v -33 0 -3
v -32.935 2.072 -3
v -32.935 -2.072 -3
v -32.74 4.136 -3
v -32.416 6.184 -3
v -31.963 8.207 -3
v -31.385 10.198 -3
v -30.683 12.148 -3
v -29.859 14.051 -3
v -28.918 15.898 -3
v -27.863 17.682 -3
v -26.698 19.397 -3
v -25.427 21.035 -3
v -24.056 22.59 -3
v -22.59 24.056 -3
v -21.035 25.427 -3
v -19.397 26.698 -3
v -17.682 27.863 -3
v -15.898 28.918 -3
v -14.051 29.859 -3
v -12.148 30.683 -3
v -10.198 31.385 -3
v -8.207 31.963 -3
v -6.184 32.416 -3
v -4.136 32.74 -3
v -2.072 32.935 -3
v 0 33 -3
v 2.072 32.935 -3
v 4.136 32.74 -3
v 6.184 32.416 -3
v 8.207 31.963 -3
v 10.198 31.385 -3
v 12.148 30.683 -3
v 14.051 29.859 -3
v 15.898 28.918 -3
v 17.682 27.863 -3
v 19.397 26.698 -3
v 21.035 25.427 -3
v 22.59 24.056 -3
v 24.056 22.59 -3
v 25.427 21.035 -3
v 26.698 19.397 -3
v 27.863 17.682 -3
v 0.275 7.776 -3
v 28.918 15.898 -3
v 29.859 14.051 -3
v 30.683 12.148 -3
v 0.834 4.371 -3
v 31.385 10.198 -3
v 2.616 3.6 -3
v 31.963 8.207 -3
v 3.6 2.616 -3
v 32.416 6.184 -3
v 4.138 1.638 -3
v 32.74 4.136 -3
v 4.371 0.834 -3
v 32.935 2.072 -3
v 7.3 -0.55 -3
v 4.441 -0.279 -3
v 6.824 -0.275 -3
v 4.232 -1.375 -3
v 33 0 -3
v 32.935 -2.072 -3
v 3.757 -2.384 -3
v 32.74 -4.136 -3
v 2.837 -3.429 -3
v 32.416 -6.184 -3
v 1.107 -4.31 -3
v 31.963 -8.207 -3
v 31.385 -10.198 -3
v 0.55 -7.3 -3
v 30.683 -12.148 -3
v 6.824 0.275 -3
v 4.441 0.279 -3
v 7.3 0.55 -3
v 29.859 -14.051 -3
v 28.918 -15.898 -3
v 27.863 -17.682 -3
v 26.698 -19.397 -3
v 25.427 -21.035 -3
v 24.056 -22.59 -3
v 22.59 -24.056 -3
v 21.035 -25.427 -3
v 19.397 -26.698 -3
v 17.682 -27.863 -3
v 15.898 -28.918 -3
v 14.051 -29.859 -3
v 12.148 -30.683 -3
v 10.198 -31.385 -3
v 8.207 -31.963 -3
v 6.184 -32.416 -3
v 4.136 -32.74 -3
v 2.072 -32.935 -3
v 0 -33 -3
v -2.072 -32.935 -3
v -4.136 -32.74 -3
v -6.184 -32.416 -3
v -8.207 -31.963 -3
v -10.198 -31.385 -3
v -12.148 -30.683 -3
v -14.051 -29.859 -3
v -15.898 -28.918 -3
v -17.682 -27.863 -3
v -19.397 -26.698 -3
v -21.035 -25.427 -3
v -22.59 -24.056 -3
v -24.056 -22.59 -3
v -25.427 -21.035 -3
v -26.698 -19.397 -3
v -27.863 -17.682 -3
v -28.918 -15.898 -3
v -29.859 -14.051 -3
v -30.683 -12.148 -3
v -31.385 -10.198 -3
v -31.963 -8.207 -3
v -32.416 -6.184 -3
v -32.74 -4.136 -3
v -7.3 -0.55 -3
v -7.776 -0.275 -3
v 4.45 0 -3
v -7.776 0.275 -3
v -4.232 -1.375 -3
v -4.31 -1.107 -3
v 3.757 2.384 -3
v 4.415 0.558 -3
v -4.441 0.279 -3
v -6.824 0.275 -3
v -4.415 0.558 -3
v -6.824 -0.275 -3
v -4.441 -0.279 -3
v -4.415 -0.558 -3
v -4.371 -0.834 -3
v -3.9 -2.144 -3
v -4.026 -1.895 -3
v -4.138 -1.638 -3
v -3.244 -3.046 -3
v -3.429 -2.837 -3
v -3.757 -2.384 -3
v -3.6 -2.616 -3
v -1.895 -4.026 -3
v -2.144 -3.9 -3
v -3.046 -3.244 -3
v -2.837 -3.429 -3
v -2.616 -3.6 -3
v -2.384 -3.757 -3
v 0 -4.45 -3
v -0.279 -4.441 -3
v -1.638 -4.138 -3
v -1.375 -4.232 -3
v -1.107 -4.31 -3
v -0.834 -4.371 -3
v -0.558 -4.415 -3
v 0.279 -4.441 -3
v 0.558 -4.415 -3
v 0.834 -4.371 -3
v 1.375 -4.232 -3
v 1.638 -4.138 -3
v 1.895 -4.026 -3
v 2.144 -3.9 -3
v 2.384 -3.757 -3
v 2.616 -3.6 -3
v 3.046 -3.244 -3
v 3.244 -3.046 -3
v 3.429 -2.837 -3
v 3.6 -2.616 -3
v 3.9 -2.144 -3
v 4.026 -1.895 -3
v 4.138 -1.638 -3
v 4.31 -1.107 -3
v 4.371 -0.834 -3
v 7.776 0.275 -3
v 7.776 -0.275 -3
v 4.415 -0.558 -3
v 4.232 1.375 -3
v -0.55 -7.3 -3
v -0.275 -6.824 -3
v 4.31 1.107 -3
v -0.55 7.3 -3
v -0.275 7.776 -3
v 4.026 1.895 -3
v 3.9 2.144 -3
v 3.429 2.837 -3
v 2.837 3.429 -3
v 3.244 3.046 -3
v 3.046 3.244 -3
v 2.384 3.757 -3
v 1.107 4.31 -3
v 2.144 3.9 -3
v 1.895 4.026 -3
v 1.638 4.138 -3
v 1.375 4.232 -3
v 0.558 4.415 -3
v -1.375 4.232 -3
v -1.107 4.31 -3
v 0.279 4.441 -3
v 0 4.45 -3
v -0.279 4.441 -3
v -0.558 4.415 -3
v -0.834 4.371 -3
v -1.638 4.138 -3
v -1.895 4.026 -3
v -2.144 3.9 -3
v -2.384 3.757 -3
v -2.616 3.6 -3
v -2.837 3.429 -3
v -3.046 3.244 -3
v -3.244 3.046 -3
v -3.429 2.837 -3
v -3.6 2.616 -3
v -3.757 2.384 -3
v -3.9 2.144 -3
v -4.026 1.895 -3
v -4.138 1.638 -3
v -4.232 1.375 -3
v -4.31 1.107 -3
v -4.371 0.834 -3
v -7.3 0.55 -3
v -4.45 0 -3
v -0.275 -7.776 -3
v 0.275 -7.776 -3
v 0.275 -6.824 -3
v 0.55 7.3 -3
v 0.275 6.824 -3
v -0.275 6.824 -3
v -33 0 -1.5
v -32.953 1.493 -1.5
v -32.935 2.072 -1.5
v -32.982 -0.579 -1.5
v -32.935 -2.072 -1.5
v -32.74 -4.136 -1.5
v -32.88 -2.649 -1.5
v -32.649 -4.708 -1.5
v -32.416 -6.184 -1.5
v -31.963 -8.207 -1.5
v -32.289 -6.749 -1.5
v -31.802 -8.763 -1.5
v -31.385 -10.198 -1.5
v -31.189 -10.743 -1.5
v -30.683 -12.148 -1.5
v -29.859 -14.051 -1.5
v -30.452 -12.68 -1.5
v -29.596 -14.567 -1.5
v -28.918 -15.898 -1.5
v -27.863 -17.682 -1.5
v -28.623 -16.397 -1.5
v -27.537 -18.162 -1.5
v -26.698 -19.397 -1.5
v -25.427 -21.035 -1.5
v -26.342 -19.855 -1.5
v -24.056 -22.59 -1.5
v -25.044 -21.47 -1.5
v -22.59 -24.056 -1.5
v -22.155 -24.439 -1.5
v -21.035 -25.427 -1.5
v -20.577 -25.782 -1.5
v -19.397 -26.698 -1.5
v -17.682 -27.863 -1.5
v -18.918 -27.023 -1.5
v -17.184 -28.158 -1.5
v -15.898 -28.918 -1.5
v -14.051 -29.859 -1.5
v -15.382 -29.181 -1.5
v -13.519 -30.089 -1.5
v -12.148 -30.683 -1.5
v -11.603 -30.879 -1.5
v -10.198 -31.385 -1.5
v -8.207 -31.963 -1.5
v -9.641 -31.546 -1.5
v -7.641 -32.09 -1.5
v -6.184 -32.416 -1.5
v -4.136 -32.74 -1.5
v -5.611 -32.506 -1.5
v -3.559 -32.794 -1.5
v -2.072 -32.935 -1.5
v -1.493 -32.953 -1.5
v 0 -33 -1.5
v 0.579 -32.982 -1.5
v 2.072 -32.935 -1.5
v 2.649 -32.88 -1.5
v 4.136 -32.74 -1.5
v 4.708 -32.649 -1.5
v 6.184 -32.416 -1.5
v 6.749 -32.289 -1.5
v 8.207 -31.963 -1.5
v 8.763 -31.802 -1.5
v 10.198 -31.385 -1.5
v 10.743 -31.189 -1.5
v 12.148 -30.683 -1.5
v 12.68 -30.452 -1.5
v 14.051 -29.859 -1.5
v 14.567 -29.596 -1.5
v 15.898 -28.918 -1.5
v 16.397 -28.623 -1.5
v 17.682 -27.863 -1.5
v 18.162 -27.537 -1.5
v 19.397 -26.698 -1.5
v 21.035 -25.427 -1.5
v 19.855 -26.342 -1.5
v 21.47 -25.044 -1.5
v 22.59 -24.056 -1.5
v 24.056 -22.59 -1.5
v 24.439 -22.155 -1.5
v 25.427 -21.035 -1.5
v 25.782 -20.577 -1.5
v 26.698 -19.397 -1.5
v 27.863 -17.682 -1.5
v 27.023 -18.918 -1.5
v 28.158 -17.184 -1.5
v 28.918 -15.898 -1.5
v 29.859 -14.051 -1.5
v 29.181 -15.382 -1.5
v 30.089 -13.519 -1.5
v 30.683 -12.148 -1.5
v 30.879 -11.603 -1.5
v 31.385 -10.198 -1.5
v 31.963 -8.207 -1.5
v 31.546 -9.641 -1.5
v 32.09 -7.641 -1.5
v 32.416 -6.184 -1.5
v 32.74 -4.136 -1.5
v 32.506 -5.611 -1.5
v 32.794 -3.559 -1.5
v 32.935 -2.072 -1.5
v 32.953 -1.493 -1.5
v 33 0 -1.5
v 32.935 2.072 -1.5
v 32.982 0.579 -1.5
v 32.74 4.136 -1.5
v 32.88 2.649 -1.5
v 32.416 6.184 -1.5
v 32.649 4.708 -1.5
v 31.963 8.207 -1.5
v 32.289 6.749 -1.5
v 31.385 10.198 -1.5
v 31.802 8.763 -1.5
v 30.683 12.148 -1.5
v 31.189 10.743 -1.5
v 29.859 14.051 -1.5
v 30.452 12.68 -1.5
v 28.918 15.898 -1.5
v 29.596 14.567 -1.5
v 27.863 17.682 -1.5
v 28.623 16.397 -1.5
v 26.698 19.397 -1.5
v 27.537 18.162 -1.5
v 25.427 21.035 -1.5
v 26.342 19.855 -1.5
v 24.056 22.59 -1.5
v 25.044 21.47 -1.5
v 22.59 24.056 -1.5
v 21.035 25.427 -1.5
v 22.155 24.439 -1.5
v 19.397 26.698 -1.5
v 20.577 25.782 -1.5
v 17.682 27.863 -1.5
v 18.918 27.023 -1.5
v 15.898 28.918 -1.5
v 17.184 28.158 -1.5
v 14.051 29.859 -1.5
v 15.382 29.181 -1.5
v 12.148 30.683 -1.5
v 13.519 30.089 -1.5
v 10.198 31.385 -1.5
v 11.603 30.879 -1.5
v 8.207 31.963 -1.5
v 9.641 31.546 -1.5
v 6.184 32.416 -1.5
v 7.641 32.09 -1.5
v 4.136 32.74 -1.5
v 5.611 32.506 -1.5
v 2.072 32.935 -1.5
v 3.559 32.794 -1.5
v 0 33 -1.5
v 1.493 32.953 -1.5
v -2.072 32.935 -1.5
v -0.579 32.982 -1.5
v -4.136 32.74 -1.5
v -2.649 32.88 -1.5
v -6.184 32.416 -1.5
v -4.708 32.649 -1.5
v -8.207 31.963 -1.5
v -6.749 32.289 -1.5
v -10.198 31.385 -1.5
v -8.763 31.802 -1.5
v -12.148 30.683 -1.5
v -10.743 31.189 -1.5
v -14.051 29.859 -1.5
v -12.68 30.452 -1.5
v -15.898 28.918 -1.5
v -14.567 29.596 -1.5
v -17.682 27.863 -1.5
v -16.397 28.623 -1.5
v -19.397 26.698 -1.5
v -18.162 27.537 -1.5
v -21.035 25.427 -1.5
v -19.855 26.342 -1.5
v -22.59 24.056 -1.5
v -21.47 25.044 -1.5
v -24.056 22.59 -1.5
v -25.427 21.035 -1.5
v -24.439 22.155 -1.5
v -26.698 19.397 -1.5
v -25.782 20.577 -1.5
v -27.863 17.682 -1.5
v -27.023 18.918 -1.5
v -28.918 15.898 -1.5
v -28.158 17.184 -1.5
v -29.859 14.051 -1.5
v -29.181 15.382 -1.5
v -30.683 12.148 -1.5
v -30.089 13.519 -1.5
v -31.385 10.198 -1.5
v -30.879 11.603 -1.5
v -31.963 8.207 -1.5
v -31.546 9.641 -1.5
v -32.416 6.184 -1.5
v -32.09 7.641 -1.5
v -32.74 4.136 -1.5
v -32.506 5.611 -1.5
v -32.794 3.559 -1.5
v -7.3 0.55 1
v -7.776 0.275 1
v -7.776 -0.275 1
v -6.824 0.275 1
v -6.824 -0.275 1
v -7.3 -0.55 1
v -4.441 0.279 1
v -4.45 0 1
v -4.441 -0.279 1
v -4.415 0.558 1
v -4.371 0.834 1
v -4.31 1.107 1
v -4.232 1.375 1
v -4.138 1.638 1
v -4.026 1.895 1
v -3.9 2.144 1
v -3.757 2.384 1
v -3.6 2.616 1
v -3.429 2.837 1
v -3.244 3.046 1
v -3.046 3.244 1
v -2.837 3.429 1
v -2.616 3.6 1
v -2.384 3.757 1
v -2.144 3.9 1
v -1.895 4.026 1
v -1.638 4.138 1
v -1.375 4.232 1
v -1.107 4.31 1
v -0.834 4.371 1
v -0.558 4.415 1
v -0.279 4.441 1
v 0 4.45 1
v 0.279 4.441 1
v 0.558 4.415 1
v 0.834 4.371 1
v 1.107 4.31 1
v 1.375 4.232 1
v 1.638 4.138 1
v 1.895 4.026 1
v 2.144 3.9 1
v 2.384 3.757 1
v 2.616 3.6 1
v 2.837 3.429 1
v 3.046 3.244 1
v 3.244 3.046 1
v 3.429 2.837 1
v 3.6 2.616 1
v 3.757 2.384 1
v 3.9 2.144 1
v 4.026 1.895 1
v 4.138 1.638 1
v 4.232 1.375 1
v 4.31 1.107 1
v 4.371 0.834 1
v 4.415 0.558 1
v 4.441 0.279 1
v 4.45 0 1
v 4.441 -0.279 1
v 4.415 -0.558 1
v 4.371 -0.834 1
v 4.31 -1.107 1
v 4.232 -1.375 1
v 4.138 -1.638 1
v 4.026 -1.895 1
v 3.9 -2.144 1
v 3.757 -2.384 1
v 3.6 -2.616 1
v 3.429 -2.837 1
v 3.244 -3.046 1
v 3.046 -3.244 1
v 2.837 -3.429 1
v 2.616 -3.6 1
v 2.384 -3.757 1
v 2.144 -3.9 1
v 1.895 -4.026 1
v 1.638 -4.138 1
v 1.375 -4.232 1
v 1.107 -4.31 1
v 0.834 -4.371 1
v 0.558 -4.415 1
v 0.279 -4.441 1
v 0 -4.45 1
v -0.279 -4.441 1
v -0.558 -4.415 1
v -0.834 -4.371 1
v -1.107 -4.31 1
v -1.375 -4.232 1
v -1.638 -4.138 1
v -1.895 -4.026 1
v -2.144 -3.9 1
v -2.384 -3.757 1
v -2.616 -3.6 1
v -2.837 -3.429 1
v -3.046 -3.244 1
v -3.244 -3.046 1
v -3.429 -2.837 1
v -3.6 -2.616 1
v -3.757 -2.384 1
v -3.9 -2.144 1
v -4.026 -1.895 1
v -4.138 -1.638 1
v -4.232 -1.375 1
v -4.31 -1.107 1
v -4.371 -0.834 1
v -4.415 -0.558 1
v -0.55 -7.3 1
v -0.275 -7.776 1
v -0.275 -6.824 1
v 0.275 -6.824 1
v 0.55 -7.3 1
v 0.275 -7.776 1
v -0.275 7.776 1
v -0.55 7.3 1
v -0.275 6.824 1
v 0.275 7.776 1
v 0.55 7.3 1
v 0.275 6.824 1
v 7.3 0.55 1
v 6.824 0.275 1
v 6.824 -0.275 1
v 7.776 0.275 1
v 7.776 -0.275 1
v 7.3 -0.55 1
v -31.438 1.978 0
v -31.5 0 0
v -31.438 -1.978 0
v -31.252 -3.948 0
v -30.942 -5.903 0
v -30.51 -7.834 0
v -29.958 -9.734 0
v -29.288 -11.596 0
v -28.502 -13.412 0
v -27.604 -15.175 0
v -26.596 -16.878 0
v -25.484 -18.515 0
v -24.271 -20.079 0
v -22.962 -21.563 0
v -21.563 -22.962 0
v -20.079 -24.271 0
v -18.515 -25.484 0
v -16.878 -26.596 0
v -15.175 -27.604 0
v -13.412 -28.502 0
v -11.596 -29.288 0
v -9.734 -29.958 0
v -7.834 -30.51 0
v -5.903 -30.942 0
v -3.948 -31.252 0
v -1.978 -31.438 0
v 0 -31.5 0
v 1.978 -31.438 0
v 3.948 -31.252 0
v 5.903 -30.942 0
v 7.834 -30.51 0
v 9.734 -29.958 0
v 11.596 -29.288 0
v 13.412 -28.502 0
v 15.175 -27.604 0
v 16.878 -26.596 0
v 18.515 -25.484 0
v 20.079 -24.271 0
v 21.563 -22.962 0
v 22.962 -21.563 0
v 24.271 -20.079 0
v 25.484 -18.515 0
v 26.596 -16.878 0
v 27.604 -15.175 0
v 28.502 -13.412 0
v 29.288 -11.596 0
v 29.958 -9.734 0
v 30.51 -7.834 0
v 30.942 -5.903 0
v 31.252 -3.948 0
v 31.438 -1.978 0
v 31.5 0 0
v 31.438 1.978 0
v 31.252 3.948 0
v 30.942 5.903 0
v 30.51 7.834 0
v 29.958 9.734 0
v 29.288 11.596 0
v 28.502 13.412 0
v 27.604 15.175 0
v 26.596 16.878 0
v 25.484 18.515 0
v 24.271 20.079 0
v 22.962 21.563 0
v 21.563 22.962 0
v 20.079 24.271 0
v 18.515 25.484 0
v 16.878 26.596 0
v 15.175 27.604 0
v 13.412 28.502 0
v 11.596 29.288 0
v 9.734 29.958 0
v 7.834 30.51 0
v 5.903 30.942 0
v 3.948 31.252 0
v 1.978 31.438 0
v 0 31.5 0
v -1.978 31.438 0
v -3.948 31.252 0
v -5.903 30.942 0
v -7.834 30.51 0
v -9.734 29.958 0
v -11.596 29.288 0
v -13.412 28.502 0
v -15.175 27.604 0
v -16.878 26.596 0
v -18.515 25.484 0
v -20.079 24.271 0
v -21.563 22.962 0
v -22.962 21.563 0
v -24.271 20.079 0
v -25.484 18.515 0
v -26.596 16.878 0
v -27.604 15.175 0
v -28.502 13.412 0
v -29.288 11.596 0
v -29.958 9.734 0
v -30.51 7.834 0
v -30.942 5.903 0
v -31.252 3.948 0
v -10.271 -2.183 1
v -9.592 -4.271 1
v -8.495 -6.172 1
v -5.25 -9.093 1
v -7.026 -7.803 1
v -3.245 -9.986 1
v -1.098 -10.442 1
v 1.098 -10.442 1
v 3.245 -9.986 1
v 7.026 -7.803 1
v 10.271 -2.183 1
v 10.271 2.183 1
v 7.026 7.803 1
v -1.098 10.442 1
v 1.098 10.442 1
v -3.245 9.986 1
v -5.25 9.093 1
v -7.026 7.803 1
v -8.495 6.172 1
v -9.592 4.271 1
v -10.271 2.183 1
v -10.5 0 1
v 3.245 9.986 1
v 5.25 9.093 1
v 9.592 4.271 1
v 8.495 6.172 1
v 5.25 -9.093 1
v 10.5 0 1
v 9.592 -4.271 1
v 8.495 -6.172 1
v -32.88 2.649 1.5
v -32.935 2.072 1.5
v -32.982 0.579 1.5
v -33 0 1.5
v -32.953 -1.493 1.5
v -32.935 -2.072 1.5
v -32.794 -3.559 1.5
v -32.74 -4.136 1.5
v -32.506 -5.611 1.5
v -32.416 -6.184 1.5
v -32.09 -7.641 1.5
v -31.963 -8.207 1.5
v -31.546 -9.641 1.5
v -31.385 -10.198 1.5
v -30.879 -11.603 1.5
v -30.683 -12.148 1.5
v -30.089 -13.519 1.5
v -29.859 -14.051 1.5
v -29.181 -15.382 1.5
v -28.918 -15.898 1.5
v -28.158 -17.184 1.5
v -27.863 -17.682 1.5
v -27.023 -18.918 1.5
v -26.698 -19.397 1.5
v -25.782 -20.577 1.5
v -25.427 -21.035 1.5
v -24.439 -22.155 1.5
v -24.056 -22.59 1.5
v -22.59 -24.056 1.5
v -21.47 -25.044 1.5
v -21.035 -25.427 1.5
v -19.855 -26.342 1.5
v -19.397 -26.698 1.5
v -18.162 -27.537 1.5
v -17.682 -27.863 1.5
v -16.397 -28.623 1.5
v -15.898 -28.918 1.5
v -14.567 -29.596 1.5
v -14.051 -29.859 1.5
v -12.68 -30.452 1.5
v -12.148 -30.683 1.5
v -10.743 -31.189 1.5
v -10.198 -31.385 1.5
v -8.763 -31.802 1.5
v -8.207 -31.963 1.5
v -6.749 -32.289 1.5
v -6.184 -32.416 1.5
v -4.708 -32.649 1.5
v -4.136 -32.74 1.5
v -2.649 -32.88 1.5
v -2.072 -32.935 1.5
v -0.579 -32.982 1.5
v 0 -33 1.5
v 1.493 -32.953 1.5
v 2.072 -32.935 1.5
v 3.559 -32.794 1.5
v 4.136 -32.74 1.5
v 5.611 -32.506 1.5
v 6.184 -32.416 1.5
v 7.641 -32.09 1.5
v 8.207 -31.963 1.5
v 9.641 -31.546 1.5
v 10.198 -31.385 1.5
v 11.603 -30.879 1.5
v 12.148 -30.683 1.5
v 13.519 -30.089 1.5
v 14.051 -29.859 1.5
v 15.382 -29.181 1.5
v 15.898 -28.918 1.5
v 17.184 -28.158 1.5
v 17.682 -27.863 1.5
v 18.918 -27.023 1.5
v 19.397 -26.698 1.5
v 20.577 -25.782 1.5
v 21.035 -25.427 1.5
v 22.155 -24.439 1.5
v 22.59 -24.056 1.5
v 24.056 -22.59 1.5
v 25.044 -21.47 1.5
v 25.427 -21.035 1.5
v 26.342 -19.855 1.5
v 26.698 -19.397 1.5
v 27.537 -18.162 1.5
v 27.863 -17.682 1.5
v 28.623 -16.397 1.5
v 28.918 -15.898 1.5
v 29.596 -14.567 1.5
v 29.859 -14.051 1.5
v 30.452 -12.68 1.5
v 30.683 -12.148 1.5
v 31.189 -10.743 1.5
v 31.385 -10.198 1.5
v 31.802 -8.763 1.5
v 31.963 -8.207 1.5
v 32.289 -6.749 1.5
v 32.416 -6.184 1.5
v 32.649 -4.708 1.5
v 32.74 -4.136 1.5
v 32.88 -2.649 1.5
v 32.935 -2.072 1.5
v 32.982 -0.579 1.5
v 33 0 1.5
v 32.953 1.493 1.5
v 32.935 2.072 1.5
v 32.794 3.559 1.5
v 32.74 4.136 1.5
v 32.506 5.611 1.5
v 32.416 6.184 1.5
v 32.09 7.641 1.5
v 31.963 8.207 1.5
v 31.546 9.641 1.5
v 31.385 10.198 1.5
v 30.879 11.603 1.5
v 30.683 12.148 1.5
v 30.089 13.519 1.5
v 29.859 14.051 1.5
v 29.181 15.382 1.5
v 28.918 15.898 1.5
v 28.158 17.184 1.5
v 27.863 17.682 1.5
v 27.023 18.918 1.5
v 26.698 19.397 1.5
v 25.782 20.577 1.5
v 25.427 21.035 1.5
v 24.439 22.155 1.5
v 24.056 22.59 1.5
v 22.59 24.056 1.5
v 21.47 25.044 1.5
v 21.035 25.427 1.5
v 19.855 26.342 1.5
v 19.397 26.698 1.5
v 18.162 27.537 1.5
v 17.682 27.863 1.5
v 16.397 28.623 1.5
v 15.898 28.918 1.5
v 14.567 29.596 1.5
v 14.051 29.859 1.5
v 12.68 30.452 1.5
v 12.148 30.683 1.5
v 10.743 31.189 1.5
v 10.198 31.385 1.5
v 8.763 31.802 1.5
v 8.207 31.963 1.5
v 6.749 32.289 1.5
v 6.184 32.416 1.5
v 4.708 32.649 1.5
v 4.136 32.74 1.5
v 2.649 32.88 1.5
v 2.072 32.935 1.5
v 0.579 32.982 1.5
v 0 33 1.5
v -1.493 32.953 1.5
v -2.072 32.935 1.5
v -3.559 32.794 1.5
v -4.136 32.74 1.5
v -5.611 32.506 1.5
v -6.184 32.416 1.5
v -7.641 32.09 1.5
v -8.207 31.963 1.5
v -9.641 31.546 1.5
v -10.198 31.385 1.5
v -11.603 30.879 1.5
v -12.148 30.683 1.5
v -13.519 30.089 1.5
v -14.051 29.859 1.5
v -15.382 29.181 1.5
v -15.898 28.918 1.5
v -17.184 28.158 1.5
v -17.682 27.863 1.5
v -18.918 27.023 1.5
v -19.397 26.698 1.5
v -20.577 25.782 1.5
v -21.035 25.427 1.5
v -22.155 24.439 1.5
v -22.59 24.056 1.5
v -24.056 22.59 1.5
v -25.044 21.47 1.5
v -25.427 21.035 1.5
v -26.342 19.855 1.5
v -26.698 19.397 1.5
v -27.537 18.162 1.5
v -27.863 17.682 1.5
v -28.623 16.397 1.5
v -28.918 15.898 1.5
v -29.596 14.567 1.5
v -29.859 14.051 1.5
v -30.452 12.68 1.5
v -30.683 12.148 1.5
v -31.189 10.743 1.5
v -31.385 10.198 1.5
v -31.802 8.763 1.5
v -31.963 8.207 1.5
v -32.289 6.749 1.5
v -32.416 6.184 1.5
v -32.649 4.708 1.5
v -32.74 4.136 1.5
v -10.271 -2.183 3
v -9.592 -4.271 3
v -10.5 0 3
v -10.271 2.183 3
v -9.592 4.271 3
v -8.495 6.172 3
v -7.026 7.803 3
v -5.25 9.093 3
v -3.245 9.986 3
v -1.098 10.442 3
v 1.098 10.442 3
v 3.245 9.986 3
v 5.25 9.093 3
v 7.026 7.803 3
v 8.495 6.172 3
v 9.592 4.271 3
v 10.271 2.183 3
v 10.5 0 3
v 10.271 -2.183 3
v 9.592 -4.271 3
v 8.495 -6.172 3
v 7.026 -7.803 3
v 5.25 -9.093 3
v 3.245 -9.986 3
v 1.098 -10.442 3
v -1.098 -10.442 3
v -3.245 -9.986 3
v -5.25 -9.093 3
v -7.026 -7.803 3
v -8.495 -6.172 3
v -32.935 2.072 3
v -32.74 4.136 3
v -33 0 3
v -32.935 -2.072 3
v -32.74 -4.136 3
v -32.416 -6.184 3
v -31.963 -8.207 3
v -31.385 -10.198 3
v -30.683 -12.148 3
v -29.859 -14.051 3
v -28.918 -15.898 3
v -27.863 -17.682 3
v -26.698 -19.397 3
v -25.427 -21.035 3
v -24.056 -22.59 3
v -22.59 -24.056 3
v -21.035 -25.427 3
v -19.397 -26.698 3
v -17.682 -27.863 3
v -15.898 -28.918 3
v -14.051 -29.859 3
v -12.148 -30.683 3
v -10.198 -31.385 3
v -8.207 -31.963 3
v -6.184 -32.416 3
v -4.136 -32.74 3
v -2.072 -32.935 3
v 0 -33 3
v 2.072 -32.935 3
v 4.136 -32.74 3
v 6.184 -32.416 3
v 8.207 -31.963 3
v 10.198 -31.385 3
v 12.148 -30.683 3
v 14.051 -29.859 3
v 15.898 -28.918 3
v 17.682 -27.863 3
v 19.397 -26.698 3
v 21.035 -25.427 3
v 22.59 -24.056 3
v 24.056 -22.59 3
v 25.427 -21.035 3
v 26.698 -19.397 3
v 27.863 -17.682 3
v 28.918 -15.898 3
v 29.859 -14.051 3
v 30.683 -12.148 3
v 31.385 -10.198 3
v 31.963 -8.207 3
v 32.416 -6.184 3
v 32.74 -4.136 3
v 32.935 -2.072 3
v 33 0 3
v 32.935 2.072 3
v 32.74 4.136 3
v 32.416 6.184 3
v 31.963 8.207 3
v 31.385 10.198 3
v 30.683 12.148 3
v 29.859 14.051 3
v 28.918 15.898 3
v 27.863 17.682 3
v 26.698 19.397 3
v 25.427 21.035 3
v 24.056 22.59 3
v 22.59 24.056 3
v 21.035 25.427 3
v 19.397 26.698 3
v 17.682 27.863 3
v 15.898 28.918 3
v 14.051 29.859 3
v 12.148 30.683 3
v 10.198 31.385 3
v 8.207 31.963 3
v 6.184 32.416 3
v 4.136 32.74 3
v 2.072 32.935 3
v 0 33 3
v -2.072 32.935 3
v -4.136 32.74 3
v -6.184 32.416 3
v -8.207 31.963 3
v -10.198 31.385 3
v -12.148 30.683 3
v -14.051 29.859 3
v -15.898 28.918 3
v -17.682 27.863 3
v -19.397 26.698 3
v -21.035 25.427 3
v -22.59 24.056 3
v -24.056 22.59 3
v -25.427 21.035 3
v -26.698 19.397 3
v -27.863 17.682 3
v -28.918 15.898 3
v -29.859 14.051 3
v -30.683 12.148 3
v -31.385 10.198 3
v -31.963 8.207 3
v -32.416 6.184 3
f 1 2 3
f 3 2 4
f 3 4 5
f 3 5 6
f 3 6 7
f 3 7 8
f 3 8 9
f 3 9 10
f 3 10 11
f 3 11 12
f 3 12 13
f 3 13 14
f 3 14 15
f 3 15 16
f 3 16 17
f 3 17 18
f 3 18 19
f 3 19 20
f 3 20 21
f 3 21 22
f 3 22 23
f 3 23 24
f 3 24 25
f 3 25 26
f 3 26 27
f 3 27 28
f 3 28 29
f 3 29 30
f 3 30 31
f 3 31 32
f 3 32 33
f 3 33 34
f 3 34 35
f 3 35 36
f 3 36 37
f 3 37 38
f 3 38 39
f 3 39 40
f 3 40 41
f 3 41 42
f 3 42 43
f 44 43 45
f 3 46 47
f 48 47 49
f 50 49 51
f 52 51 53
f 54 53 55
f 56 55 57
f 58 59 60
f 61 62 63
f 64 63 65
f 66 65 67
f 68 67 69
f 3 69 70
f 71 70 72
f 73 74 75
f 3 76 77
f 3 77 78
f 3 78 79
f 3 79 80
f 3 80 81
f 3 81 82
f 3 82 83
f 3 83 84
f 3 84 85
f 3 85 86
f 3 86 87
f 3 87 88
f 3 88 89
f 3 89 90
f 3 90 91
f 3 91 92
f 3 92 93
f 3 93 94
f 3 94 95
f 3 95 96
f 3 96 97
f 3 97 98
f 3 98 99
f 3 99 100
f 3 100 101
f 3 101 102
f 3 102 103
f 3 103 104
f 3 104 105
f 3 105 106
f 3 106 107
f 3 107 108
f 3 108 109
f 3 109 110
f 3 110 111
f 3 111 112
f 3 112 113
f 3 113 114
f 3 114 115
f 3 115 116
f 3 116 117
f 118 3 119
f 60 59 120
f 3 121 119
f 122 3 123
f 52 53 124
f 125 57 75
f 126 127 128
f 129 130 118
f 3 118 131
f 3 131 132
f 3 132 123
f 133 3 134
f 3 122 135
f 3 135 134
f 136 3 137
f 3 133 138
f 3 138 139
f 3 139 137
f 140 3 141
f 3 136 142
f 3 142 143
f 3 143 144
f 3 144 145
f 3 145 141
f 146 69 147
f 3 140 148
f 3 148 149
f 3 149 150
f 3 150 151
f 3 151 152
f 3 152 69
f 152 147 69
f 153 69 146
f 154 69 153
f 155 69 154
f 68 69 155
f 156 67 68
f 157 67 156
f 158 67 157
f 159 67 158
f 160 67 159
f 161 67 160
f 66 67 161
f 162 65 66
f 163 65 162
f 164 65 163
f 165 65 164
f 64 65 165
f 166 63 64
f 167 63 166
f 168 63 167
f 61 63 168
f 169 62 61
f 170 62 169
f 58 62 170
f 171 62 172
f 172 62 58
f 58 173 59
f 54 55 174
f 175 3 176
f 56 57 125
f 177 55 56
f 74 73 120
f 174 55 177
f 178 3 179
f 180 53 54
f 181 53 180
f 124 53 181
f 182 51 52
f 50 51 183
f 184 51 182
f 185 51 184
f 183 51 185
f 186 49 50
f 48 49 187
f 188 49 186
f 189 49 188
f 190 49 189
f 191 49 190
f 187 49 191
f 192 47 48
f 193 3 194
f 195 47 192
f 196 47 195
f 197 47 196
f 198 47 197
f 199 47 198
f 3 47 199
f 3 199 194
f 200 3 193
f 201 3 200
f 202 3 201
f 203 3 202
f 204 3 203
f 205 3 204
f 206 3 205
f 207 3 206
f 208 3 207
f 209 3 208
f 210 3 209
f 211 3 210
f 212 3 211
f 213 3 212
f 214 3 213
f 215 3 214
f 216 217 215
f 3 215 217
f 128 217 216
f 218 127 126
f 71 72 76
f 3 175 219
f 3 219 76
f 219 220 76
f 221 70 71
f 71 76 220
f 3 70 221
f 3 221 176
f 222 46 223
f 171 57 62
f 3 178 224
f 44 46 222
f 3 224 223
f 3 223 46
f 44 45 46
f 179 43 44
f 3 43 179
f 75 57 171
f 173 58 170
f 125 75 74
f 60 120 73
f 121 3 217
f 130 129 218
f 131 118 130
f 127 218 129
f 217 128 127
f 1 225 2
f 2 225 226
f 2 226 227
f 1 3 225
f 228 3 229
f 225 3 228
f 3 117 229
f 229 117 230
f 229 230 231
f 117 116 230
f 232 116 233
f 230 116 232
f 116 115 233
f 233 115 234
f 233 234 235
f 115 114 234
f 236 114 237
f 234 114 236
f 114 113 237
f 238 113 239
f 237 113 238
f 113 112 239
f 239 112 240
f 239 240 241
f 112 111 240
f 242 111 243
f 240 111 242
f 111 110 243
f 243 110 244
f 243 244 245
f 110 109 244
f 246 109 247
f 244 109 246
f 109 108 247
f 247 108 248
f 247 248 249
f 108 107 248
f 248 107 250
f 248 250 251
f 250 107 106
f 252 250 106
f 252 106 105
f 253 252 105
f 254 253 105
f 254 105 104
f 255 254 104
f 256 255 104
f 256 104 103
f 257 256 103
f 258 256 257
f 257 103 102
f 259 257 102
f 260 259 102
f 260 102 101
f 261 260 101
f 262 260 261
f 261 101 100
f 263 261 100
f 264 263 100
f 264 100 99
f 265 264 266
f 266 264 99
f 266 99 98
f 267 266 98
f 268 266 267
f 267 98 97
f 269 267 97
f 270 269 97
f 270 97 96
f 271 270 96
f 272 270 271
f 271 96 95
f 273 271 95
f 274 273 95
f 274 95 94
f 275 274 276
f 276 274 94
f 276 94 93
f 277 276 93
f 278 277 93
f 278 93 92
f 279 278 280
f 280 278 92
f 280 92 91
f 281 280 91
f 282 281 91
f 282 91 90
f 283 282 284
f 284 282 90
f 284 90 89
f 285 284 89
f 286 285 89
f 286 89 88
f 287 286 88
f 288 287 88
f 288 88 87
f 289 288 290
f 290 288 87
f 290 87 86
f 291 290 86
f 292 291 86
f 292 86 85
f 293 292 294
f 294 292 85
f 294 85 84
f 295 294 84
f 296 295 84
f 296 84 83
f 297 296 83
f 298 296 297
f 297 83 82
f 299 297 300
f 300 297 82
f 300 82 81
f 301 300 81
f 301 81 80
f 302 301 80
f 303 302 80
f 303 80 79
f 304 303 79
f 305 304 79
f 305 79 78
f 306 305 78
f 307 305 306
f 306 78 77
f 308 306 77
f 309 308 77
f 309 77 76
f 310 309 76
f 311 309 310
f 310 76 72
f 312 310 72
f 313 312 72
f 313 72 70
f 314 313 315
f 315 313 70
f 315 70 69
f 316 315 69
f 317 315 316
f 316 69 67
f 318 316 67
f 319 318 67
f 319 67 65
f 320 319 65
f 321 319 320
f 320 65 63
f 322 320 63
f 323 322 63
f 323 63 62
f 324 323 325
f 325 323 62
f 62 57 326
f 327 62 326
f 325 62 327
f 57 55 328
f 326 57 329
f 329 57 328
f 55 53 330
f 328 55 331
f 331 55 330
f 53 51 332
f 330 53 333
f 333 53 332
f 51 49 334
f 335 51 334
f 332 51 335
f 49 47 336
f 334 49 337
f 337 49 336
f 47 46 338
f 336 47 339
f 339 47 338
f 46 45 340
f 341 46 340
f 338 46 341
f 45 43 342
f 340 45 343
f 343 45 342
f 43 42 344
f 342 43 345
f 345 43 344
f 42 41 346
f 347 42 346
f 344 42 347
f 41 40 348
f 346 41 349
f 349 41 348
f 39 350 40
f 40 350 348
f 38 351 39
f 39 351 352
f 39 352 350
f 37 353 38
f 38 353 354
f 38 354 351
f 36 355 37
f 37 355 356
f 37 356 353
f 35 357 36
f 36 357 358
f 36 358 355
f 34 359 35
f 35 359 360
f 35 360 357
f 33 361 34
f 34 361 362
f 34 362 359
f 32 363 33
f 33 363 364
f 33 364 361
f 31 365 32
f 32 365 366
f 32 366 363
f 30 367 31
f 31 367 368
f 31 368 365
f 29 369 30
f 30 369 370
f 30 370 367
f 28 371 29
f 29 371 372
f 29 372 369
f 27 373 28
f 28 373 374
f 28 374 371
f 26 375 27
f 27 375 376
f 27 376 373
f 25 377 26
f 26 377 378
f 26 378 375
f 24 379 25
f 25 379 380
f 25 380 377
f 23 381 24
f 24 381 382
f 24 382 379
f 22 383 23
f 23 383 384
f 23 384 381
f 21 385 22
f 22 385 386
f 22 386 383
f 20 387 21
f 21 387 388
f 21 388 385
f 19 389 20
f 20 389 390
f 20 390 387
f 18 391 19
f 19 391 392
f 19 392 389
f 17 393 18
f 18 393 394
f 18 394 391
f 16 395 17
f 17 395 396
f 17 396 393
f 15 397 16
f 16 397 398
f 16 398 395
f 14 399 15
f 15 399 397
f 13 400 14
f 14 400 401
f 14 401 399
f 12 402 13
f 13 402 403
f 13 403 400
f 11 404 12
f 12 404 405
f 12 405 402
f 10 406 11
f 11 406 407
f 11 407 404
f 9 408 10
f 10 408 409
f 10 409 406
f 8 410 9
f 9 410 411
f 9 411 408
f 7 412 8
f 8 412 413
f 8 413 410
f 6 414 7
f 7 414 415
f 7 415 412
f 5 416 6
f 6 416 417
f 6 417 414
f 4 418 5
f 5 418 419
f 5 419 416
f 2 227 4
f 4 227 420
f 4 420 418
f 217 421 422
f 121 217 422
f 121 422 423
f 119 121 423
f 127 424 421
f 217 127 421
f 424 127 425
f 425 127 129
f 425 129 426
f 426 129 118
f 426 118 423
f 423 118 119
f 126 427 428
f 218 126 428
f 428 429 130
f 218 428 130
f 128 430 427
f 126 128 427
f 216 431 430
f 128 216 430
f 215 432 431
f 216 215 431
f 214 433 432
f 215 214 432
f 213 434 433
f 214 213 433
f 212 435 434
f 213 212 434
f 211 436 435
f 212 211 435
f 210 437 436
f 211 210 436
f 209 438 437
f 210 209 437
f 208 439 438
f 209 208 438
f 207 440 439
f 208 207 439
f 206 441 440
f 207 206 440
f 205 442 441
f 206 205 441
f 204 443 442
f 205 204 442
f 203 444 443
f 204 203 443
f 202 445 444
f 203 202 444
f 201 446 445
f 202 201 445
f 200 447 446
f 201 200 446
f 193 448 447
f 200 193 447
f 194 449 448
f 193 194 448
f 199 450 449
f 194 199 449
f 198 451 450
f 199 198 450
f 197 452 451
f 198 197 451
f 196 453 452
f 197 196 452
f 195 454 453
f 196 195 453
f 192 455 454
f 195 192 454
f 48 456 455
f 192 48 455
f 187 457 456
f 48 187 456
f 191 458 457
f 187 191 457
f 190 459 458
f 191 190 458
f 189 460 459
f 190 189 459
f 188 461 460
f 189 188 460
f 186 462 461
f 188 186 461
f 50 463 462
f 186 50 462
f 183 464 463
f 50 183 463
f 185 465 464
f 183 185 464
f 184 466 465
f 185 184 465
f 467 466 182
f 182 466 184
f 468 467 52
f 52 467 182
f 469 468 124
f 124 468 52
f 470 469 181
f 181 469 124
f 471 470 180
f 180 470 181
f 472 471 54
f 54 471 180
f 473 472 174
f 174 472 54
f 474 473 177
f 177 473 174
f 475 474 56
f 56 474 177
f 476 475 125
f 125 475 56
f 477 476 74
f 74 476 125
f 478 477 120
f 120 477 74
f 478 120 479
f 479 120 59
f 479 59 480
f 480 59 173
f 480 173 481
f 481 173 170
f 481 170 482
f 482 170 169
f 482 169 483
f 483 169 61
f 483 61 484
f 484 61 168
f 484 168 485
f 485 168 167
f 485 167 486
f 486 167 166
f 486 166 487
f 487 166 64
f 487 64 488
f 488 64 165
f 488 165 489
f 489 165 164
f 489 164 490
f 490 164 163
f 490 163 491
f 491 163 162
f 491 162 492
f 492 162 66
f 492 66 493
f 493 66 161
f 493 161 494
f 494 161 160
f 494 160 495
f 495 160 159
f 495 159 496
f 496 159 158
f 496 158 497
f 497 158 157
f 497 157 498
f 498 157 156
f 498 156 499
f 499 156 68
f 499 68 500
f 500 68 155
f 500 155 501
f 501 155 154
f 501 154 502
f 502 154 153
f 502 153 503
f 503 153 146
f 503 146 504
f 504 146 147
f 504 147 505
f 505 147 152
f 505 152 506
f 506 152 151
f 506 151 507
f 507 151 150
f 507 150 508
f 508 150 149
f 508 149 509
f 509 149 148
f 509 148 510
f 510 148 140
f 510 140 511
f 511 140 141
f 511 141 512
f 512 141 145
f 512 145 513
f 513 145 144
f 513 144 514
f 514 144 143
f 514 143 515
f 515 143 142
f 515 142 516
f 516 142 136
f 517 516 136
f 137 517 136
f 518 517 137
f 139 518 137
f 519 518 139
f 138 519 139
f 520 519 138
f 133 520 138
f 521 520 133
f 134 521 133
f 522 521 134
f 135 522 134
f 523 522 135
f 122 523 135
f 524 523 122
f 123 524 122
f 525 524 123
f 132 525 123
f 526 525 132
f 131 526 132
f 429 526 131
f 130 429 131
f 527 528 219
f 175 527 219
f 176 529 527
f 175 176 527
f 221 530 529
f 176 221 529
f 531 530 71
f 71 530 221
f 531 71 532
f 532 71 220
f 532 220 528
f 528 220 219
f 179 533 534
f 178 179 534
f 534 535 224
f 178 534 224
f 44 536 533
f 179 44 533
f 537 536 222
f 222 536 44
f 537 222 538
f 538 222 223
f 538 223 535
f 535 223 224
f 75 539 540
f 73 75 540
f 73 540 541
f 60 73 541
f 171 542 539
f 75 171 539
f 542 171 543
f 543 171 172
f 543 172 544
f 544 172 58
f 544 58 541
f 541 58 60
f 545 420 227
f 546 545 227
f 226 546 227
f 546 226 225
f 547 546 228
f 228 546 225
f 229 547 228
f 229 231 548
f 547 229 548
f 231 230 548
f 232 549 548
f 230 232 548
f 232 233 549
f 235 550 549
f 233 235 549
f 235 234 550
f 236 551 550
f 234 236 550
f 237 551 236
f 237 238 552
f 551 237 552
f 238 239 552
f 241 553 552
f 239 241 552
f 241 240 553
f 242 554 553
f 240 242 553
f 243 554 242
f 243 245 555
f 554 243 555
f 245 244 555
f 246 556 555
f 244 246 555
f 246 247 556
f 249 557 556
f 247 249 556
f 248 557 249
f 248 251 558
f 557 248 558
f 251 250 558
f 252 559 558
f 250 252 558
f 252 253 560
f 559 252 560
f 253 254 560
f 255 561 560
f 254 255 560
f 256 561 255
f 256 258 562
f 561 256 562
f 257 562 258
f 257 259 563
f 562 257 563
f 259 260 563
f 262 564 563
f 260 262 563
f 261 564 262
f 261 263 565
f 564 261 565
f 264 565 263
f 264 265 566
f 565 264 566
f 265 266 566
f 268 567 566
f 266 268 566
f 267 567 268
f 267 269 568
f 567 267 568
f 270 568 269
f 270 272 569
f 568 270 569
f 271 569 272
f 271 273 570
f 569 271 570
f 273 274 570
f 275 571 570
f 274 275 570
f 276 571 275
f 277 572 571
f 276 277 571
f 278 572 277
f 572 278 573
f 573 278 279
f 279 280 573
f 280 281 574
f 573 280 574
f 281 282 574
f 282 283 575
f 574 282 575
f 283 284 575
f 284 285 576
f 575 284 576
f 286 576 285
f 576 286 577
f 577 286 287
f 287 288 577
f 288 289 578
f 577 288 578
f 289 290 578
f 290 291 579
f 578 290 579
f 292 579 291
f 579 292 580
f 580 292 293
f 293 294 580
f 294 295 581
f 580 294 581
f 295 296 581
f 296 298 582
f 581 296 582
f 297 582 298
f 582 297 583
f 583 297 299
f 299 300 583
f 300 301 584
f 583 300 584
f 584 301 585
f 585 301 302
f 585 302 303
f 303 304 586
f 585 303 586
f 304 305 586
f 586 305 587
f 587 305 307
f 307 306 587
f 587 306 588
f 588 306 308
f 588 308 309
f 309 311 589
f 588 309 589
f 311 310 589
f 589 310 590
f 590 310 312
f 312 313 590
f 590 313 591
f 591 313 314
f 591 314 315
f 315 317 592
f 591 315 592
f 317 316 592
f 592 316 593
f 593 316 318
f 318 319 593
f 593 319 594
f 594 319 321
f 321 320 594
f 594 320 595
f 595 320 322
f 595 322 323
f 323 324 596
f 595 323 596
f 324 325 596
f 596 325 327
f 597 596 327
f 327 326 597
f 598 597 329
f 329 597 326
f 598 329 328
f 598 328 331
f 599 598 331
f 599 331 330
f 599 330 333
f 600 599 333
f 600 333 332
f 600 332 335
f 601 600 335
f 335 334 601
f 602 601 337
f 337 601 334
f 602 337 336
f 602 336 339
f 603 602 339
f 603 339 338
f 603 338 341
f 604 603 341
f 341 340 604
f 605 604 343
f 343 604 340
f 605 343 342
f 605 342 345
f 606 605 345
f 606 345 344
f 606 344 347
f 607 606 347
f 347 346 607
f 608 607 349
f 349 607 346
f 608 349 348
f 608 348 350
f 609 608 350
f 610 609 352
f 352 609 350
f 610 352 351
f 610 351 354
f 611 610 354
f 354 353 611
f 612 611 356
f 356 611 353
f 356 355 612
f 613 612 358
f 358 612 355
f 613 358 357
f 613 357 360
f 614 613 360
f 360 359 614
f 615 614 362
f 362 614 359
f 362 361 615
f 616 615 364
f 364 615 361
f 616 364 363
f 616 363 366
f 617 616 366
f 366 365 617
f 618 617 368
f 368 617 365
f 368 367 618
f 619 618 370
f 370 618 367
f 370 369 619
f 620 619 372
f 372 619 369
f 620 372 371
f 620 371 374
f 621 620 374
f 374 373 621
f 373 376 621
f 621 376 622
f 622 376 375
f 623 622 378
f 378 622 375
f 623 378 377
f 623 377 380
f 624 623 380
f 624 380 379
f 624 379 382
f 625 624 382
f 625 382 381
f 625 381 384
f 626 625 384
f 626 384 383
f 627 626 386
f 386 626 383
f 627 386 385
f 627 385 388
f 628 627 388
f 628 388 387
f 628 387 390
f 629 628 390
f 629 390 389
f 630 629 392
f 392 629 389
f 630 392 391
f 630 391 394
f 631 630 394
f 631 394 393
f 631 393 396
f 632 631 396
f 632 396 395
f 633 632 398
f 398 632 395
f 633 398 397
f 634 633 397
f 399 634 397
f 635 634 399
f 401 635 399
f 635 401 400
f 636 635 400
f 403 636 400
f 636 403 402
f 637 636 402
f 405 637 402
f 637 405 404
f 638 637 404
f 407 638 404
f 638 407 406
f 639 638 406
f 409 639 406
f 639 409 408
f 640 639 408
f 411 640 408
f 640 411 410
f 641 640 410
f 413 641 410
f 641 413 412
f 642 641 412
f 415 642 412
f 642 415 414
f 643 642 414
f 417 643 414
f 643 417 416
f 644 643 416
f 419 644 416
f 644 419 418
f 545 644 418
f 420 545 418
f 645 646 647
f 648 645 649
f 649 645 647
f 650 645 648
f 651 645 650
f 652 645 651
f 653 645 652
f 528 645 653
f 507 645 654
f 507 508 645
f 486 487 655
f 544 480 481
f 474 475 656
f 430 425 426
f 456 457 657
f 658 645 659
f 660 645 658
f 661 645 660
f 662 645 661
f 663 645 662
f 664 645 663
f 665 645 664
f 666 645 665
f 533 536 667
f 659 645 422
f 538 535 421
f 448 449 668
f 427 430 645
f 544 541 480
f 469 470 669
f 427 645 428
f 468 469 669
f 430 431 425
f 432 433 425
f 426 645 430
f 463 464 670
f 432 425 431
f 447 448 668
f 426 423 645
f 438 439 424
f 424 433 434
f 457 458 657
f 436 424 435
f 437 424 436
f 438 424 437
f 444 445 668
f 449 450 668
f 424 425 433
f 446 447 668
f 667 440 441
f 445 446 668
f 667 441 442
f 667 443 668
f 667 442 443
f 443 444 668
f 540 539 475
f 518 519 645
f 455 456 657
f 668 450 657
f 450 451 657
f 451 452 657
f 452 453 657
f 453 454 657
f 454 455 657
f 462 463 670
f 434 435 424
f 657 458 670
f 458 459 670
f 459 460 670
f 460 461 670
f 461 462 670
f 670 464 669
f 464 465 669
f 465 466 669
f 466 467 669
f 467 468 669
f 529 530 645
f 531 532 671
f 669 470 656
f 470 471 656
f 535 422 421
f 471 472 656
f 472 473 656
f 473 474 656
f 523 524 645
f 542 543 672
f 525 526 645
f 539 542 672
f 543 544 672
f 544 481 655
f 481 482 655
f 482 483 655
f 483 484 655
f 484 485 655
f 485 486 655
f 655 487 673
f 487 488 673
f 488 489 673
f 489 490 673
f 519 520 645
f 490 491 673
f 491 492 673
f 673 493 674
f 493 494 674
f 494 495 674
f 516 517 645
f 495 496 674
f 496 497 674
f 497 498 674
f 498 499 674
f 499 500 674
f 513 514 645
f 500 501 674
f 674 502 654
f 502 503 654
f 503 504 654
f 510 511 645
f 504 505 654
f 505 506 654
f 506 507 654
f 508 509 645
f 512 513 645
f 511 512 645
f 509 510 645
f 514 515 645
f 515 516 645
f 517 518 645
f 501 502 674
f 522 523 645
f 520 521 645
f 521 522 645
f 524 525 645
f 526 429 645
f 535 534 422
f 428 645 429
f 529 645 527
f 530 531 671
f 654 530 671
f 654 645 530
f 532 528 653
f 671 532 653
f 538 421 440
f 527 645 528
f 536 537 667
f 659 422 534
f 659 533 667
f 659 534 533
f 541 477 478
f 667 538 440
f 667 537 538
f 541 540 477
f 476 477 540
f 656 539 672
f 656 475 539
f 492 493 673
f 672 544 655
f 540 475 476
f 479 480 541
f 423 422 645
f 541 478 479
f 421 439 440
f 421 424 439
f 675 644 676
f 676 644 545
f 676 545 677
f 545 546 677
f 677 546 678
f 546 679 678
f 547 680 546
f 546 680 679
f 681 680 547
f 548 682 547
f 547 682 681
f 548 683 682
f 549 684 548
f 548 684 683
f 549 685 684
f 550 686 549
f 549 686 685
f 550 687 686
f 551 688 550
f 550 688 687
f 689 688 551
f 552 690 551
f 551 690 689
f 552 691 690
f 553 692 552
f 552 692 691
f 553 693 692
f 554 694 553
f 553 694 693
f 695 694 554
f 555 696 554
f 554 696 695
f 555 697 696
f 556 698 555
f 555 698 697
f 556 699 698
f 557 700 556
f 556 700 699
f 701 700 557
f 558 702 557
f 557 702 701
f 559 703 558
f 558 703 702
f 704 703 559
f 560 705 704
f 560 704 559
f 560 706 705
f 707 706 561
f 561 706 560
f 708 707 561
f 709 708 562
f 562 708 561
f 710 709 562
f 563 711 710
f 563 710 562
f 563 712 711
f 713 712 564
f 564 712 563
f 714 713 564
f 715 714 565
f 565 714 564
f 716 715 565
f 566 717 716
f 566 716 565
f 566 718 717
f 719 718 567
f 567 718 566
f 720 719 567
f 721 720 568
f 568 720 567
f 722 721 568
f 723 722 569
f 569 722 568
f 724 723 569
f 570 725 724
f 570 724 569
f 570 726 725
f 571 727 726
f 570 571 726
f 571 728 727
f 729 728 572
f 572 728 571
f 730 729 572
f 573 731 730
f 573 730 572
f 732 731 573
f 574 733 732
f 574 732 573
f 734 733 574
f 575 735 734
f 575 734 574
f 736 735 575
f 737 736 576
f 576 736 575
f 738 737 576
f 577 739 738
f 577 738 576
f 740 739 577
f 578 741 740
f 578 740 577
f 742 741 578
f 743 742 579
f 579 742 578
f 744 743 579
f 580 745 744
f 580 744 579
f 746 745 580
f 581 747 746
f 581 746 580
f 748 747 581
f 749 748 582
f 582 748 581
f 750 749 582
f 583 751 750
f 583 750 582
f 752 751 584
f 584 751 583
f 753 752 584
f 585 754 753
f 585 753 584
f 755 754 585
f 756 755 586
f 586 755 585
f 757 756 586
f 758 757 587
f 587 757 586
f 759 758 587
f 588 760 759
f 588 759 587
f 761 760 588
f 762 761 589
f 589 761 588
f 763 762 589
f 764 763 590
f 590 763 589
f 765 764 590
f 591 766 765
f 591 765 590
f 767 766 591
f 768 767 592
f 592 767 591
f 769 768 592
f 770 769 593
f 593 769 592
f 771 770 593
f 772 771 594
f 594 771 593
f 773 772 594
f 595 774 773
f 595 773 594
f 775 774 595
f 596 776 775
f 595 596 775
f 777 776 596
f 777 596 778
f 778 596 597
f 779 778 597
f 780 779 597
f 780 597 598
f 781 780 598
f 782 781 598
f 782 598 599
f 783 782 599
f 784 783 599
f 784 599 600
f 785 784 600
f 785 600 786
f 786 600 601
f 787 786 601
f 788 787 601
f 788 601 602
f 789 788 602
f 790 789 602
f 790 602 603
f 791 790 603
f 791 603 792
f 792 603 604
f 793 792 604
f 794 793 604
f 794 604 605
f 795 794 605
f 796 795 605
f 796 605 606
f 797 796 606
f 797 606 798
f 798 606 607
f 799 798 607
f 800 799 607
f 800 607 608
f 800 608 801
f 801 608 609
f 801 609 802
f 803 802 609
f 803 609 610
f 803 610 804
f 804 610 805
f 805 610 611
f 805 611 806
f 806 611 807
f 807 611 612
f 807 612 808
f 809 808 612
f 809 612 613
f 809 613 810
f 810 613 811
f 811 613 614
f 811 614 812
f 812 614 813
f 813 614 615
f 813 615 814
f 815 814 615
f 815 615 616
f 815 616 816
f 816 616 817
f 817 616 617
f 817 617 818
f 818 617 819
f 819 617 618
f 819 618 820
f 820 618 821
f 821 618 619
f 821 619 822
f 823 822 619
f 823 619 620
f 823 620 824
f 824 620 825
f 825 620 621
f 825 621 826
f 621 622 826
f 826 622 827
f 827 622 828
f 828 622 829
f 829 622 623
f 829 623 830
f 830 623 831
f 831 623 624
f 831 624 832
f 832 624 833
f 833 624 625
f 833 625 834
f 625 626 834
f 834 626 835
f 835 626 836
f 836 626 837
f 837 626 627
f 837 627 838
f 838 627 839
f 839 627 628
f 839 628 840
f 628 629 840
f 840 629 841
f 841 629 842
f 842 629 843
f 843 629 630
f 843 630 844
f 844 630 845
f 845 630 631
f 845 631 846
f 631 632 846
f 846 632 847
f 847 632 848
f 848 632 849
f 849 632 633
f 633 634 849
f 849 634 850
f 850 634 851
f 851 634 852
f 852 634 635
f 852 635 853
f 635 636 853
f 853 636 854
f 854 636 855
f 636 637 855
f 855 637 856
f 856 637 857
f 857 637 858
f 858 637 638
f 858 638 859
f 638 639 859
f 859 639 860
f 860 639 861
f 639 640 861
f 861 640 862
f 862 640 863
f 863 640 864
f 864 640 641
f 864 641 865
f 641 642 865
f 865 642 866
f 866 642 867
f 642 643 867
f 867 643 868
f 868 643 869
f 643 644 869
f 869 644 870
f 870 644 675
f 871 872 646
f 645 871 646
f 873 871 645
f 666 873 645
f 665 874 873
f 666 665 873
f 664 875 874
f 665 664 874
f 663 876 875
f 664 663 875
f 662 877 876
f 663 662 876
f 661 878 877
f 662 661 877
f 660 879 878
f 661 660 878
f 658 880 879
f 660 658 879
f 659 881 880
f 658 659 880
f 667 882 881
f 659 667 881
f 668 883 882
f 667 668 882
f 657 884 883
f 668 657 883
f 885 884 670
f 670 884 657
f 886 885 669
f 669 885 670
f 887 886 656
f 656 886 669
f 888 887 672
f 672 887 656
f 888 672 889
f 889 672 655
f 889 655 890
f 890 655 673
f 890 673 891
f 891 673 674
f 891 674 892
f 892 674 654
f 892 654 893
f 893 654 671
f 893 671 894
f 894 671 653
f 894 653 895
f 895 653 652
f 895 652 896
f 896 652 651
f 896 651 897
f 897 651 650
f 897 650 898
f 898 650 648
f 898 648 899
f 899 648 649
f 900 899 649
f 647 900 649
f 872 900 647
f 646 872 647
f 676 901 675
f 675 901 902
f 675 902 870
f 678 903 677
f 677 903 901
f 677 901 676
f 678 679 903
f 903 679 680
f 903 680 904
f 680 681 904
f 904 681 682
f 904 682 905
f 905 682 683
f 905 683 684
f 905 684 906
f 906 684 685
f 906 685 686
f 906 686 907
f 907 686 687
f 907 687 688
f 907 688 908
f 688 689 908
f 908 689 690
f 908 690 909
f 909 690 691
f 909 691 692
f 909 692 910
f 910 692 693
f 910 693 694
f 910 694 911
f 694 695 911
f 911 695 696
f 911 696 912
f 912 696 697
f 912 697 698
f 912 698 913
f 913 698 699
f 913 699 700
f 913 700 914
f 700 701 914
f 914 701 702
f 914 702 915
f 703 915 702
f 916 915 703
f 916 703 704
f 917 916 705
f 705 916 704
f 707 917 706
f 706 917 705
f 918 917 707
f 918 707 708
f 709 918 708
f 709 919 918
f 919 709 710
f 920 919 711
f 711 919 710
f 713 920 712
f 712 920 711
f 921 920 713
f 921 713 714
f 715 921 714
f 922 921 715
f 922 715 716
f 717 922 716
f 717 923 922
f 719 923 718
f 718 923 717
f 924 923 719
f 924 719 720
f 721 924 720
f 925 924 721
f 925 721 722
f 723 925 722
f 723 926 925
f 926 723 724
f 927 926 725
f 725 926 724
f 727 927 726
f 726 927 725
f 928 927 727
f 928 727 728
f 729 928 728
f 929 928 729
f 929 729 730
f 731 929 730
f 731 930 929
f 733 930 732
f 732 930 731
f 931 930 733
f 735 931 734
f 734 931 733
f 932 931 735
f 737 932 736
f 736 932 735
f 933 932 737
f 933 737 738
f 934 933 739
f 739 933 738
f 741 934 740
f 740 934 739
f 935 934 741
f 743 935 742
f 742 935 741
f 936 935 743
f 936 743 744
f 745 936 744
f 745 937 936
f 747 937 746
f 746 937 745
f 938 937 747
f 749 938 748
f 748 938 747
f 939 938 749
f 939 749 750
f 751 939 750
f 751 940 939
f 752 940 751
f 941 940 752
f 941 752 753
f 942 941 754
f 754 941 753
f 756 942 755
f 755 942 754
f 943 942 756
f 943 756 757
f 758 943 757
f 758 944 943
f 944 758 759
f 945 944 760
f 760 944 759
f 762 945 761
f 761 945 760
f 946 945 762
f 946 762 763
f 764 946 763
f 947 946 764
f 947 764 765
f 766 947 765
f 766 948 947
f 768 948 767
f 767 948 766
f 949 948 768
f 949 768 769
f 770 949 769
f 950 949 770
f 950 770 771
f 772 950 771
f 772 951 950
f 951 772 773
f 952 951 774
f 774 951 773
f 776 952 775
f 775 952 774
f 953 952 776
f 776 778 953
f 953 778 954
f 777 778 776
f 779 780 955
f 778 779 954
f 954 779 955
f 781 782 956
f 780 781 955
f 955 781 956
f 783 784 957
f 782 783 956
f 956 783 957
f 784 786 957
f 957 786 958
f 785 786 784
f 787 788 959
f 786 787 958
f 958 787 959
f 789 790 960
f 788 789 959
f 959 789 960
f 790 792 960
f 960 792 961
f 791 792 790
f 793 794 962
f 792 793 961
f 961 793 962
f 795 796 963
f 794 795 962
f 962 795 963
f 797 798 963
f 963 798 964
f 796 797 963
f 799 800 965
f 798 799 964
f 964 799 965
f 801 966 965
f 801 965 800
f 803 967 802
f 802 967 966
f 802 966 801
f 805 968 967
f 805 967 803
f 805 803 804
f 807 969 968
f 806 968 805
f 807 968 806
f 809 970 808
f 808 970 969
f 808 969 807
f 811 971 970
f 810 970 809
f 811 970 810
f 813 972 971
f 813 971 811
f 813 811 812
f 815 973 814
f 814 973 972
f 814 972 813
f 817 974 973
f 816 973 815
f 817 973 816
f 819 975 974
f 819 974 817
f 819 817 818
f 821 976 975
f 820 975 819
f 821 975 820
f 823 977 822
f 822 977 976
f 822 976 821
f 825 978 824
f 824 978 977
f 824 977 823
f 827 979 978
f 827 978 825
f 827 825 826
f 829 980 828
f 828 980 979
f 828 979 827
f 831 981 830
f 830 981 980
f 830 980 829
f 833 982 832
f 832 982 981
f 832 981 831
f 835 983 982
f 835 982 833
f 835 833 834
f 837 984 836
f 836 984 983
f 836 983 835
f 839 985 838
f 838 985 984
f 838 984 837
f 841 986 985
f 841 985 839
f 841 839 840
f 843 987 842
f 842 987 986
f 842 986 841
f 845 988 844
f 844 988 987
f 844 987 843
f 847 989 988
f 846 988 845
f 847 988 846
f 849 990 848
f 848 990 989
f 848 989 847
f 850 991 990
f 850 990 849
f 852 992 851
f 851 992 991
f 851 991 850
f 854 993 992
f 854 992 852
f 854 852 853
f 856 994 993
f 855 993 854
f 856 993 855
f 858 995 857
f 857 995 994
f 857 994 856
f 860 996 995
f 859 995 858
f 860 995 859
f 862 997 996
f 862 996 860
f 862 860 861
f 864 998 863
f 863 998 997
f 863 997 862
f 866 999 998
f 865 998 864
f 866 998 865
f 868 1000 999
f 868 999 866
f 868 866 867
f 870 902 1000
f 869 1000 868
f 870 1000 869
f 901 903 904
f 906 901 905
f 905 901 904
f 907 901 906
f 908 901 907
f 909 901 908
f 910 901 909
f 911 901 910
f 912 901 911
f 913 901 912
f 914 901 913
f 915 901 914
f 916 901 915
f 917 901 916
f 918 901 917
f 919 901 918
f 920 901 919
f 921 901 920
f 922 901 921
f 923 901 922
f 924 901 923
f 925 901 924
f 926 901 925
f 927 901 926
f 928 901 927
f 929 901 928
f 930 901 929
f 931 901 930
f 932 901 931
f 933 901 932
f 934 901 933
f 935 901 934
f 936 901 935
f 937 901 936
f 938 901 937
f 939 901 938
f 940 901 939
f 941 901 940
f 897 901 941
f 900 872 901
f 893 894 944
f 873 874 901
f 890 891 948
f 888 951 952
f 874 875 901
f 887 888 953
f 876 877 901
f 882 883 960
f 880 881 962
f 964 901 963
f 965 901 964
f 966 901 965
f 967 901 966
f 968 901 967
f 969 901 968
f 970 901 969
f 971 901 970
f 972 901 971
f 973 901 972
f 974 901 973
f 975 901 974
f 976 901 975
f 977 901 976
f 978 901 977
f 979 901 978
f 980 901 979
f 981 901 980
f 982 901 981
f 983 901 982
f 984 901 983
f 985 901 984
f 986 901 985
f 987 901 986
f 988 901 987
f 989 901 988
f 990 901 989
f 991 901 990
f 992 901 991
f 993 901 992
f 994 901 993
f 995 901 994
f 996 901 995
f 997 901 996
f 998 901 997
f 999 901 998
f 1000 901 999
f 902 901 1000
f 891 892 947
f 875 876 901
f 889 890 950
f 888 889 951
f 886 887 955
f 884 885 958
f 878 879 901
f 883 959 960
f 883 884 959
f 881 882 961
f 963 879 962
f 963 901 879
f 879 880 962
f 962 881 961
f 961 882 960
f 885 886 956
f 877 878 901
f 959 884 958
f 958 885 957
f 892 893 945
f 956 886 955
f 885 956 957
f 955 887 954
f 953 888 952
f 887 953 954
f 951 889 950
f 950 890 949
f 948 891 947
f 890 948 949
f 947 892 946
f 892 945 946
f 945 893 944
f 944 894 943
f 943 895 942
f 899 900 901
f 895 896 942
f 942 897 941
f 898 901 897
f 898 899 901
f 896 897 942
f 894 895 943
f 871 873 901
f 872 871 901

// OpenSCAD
//-------------------------------------------------------------
//-- Servo wheel
//-- (c) Juan Gonzalez (obijuan) juan@iearobotics.com
//-- March-2012
//-------------------------------------------------------------
//-- Wheel for mobile robots, drived by Futaba 3003 servos
//-------------------------------------------------------------

//-- Wheel parameters
wheel_or_idiam = 60;                   //-- O-ring inner diameter
wheel_or_diam = 3;                     //-- O-ring section diameter
wheel_height = 2*wheel_or_diam+0;     //-- Wheel height: change the 0 for 
                                      //-- other value (0 equals minimun height)
//-- Parameters common to all horns
horn_drill_diam = 1.1;
horn_height = 6;        //-- Total height: shaft + plate
horn_plate_height = 2;  //-- plate height

//-- Futaba 3003 servo rounded horn parameters
rh_diam1 = 8.5;  //-- Rounded horn small diameter
rh_diam2 = 20.5; //-- Rounded horn big diameter
rounded_horn_drill_distance = 7.3;

//-- Futaba 3003 horn drills


//-- Futaba 3003 4-arm horn parameters
a4h_end_diam = 5;
a4h_center_diam = 10;
a4h_arm_length = 15;
a4h_drill_distance = 13.3;


//-- Futaba 3003 6-arm horn parameters
a6h_end_diam = 5;
a6h_center_diam = 10;
a6h_arm_length=10;
a6h_arm_base_diam=7.5;
a6h_drill_distance = 10.9;


//-------------------------------------------------------
//--- Parameters:
//-- or_idiam: O-ring inner diameter
//-- or_diam: O-ring section diameter
//-- h: Height of the wheel
//--
//--  Module for generating a raw wheel, with no drills
//--  and no servo horn
//-------------------------------------------------------
module raw_wheel(or_idiam=50, or_diam=3, h=6)
{
   //-- Wheel parameters
   r = or_idiam/2 + or_diam;   //-- Radius

  //-- Temporal points
  l = or_diam*sqrt(2)/2;

  difference() {
    //-- Body of the wheel
    cylinder (r=r, h=h, $fn=100,center=true);

    //--  wheel's inner section
    rotate_extrude($fn=100)
      translate([r-or_diam/2,0,0])
      polygon( [ [0,0],[l,l],[l,-l] ] , [ [0,1,2] ]);
  }
}

//--------------------------------------------------------------
//-- Generic module for the horn's drills
//-- Parameters:
//--  d = drill's radial distance (from the horn's center)
//--  n = number of drills
//--  h = wheel height
//--------------------------------------------------------------
module horn_drills(d,n,h)
{
  union() {
    for ( i = [0 : n-1] ) {
        rotate([0,0,i*360/n])
        translate([0,d,0])
        cylinder(r=horn_drill_diam/2, h=h+10,center=true, $fn=6);  
      }
  }
}

//-----------------------------------------
//-- Futaba 3003 horn4 arm
//-- This module is just one arm
//-----------------------------------------
module horn4_arm(h=5)
{
  translate([0,a4h_arm_length-a4h_end_diam/2,0])
  //-- The arm consist of the perimeter of a cylinder and a cube
  hull() {
    cylinder(r=a4h_end_diam/2, h=h, center=true, $fn=20);
    translate([0,1-a4h_arm_length+a4h_end_diam/2,0])
      cube([a4h_center_diam,2,h],center=true);
  }
}

//-----------------------------------------
//-- Futaba 3003 horn6 arm
//-- This module is just one arm
//-----------------------------------------
module horn6_arm(h=5)
{
  translate([0,a6h_arm_length-a6h_end_diam/2,0])
  //-- The arm consist of the perimeter of a cylinder and a cube
  hull() {
    cylinder(r=a6h_end_diam/2, h=h, center=true, $fn=20);
    translate([0,-a6h_arm_length+a6h_end_diam/2,0])
    cube([a6h_arm_base_diam,0.1,h],center=true);
  }
}


//-------------------------------------------
//-- Futaba 3003 4-arm horn
//-------------------------------------------
module horn4(h=5)
{
  union() {
    //-- Center part (is a square)
    cube([a4h_center_diam+0.2,a4h_center_diam+0.2,h],center=true);

    //-- Place the 4 arms in every side of the cube
    for ( i = [0 : 3] ) {
      rotate( [0,0,i*90])
      translate([0, a4h_center_diam/2, 0])
      horn4_arm(h);
    }
  }

}

//-------------------------------------------
//-- Futaba 3003 6-arm horn
//-------------------------------------------
module horn6(h=5)
{
  union() {
    //-- The center part is a cylinder
    cylinder(r=15/2,h=h,center=true);

    //-- Place the 6 arms rotated 60 degrees
    for ( i = [0 : 5] ) {
      rotate( [0,0,i*60])
      translate([0, 15/2*cos(30), 0])
      horn6_arm(h);
    }
  }
}


//-------------------------------------------------------
//--  A Wheel for the futaba 3003 rounded horns
//--------------------------------------------------------
module Servo_wheel_rounded_horn()
{
  difference() {
      raw_wheel(or_idiam=wheel_or_idiam, or_diam=wheel_or_diam, h=wheel_height);

      //-- Inner drill
      cylinder(center=true, h=2*wheel_height + 10, r=rh_diam1/2+0.2,$fn=100);

      //-- Carved circle for the Futaba rounded horn
      translate([0,0,-wheel_height/2+horn_height-horn_plate_height]) 
       cylinder(r=rh_diam2/2+0.25, h=2*wheel_height+10,$fn=30);

      //-- small drills for the rounded horn
      horn_drills(d=rounded_horn_drill_distance, n=4, h=wheel_height);
  }

}

//-------------------------------------------------------
//--  A Wheel for the futaba 3003 4-arm horns
//--------------------------------------------------------
module Servo_wheel_4_arm_horn()
{
  difference() {
      raw_wheel(or_idiam=wheel_or_idiam, or_diam=wheel_or_diam, h=wheel_height);

      //-- Inner drill
      cylinder(center=true, h=2*wheel_height + 10, r=a4h_center_diam/2,$fn=20);

      //-- substract the 4-arm servo horn
      translate([0,0,horn_height-horn_plate_height])
        horn4(h=wheel_height);

      //-- Horn drills
      horn_drills(d=a4h_drill_distance, n=4, h=wheel_height);

  }
}

//-------------------------------------------------------
//--  A Wheel for the futaba 3003 6-arm horns
//--------------------------------------------------------
module Servo_wheel_6_arm_horn()
{
  difference() {
      raw_wheel(or_idiam=wheel_or_idiam, or_diam=wheel_or_diam, h=wheel_height);

       //-- Inner drill
      cylinder(center=true, h=2*wheel_height + 10, r=a6h_center_diam/2,$fn=20);

      //-- substract the 6-arm horn
      translate([0,0,horn_height-horn_plate_height])
      horn6(h=wheel_height);

      //-- Horn drills
      horn_drills(d=a6h_drill_distance, n=6, h=wheel_height);
  }
}


//-- Test!
Servo_wheel_rounded_horn();
//translate([wheel_or_idiam+10,0,0]) Servo_wheel_4_arm_horn();
//translate([-wheel_or_idiam-10,0,0]) Servo_wheel_6_arm_horn();
